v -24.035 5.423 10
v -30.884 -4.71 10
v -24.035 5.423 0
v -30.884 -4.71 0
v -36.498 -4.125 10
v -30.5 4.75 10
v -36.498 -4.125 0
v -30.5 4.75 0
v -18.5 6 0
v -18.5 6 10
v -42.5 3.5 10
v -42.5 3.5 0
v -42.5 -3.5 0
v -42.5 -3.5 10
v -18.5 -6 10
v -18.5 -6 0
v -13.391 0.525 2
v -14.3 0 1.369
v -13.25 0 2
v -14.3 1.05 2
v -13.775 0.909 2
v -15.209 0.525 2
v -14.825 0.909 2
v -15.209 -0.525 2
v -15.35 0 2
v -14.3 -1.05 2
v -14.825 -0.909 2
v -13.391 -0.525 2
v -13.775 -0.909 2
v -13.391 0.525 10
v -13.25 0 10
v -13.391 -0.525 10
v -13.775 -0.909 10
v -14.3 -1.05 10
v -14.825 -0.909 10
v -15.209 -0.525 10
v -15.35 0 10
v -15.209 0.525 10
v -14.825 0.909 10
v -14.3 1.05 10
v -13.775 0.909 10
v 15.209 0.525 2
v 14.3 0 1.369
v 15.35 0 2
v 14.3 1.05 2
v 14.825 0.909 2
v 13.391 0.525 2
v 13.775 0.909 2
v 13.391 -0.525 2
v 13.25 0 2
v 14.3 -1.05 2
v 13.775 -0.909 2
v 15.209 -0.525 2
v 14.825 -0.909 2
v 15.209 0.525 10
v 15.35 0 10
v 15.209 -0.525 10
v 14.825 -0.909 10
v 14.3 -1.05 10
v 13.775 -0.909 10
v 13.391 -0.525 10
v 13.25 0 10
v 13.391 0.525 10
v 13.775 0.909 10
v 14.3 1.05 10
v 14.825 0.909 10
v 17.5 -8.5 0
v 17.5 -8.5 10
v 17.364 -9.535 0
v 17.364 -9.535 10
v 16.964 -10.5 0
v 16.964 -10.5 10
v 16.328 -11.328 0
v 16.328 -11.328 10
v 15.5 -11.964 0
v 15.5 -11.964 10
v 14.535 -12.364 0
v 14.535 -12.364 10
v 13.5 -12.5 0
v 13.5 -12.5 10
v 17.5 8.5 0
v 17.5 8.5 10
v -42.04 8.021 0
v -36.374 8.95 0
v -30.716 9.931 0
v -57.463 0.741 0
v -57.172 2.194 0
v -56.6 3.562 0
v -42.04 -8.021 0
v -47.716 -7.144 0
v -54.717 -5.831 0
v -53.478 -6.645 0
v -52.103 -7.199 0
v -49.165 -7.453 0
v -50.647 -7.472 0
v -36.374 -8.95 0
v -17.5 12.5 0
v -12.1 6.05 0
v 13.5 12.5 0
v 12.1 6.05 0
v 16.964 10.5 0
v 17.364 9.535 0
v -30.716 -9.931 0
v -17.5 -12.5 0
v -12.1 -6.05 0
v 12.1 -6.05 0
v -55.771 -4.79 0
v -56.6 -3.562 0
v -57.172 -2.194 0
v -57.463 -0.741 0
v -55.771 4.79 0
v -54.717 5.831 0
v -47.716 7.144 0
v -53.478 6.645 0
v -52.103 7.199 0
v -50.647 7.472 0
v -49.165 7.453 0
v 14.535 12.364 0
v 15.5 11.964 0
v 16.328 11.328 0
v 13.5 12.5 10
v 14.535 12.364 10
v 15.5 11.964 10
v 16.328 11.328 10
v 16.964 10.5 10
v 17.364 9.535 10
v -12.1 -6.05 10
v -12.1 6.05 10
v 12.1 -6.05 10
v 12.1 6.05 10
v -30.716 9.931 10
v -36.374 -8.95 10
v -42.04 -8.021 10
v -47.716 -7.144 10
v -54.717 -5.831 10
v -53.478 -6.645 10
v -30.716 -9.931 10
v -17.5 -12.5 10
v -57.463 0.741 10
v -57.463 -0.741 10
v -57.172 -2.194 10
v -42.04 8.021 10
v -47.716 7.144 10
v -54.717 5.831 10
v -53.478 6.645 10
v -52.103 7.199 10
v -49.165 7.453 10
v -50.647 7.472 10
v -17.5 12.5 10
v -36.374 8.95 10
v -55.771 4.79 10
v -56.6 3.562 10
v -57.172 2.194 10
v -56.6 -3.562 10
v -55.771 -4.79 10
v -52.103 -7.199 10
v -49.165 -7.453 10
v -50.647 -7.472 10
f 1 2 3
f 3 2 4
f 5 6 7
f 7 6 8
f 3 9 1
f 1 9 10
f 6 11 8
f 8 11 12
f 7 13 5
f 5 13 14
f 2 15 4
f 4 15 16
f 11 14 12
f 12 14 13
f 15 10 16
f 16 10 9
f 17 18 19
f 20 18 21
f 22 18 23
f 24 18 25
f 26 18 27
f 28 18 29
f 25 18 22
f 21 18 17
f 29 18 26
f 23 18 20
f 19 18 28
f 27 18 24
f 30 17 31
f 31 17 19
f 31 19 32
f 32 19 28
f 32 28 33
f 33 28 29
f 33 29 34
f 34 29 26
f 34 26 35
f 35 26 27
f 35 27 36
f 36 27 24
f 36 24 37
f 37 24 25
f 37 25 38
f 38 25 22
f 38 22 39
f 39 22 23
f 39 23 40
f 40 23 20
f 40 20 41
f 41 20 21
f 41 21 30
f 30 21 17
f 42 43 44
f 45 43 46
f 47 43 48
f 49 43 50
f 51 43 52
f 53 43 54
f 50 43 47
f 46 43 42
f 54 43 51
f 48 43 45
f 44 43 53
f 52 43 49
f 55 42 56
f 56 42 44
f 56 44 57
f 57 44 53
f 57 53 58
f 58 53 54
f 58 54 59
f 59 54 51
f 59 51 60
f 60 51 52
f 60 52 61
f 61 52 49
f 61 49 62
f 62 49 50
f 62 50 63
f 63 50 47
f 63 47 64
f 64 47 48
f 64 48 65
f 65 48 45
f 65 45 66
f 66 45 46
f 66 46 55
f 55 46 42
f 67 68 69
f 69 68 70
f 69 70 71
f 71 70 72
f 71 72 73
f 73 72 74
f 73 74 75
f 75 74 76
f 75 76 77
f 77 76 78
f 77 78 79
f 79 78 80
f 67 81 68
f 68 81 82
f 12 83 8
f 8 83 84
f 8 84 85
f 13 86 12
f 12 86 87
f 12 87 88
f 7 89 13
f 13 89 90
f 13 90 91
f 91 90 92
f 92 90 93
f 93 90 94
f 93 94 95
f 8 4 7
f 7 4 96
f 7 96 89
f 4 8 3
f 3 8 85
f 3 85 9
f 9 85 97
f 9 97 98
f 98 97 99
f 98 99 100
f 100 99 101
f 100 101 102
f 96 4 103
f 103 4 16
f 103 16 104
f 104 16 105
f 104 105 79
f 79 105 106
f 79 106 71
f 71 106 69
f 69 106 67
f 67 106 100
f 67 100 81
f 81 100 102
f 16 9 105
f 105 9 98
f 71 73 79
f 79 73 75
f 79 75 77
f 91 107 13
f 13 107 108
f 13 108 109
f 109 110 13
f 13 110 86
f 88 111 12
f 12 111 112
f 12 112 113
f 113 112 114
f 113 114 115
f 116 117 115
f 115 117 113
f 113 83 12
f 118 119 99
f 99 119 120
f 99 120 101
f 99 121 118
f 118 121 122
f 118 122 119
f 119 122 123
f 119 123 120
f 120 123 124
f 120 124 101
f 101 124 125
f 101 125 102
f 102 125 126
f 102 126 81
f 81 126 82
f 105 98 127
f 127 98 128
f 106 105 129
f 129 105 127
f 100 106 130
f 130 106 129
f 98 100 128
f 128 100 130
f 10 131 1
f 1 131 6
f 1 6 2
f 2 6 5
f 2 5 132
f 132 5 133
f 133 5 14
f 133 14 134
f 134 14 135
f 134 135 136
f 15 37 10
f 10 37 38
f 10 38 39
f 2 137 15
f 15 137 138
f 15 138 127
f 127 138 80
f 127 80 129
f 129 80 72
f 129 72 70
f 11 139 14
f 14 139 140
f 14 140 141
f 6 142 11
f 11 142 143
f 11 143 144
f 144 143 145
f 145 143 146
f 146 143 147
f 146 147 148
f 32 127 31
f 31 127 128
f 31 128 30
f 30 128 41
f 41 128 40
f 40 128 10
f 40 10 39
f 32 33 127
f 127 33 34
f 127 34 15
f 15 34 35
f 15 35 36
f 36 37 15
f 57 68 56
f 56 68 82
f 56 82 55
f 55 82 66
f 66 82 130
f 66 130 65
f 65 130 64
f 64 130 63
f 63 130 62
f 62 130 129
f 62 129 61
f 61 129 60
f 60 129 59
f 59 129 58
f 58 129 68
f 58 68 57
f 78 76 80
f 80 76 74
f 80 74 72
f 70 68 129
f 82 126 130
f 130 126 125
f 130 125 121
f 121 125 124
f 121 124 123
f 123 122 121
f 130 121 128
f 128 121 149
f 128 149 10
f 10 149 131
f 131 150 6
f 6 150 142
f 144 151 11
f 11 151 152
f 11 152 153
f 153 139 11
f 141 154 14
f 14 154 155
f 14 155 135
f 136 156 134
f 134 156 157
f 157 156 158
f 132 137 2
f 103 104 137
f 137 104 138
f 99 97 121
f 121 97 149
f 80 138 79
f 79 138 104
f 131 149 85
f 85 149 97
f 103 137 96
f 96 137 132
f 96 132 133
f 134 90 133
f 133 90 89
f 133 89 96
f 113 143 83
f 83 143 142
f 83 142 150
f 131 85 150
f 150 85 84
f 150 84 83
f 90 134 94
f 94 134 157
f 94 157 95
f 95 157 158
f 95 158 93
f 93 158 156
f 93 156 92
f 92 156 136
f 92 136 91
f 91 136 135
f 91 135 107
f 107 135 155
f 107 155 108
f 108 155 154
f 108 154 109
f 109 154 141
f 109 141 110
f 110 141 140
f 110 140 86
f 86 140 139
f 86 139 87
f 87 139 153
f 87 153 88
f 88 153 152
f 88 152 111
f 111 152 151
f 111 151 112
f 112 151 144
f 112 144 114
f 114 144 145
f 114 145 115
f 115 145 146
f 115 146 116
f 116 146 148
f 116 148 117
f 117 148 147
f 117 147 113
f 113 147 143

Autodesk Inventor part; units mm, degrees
ref_plane "YZ Plane" through (0, 0, 0) normal (1, 0, 0) x (0, 1, 0)
ref_plane "XZ Plane" through (0, 0, 0) normal (0, 1, 0) x (-1, 0, 0)
ref_plane "XY Plane" through (0, 0, 0) normal (0, 0, 1) x (1, 0, 0)
sketch "Sketch1" plane through (0, 0, 0) normal (0, 0, 1) x (1, 0, 0)
  line L0 (-12.1, 6.05) -> (12.1, 6.05)
  line L1 (12.1, 6.05) -> (12.1, -6.05)
  line L2 (12.1, -6.05) -> (-12.1, -6.05)
  line L3 (-12.1, -6.05) -> (-12.1, 6.05)
  line L4 (-12.1, 6.05) -> (12.1, -6.05) construction
  line L5 (12.1, 6.05) -> (-12.1, -6.05) construction
  line L6 (-17.5, 12.5) -> (17.5, 12.5)
  line L7 (17.5, 12.5) -> (17.5, -12.5)
  line L8 (17.5, -12.5) -> (-17.5, -12.5)
  line L9 (-17.5, 12.5) -> (17.5, -12.5) construction
  line L10 (17.5, 12.5) -> (-17.5, -12.5) construction
  arc A0 (-43.9311, 7.3622) -> (-43.9311, -7.3622) centre (-42.5, 0) ccw
  line L11 (-17.5, 12.5) -> (-43.9311, 7.3622)
  line L12 (-17.5, -12.5) -> (-43.9311, -7.3622)
  point P0 (0, 0)
  point P1 (17.5, 0)
  dimension "d0" = 24.2
  dimension "d1" = 12.1
  dimension "d2" = 35
  dimension "d3" = 25
  dimension "d4" = 15
  dimension "d5" = 60
extrude "Extrusion1" add sketch "Sketch1" along normal blind 10
fillet "Fillet1" radius 4 2 edges at (17.5, 12.5, 5) (17.5, -12.5, 5)
sketch "Sketch2" plane through (0, 0, 10) normal (0, 0, 1) x (1, 0, 0)
  line L0 (12.1, 6.05) -> (12.1, -6.05) projected
  line L1 (-12.1, -6.05) -> (-12.1, 6.05) projected
  point P0 (0, 0)
  point P1 (14.3, 0)
  point P2 (-14.3, 0)
  dimension "d16" = 2.2
  dimension "d17" = 2.2
hole "Hole1" at (14.3, 0, 10) at (-14.3, 0, 10) direction (0, 0, -1) diameter 2.1 depth 8 tip angle 118
sketch "Sketch3" plane through (0, 0, 10) normal (0, 0, 1) x (1, 0, 0)
  line L0 (-18.5, 6) -> (-42.5, 3.5)
  line L1 (-18.5, -6) -> (-42.5, -3.5)
  line L2 (-42.5, -3.5) -> (-42.5, 3.5)
  line L3 (-42.5, 0) -> (-11.6221, -28.1421) construction
  line L4 (-30.5, 4.75) -> (-30.5, -4.75) construction
  arc A0 (-43.9311, 7.3622) -> (-43.9311, -7.3622) centre (-42.5, 0) ccw construction
  line L5 (-12.1, -6.05) -> (-12.1, 6.05) projected
  line L6 (-18.5, 6) -> (-18.5, -6)
  line L7 (-24.035, 5.4234) -> (-30.8838, -4.71)
  line L8 (-30.5, 4.75) -> (-36.4984, -4.1252)
  point P0 (0, 0)
  point P1 (-12.1, 0)
  point P2 (-12.1, 0)
  dimension "d27" = 7
  dimension "d31" = 24
  dimension "d32" = 6.5
  dimension "d33" = 12
  dimension "d34" = 50
  dimension "d35" = 50
extrude "Extrusion2" cut sketch "Sketch3" against normal blind 10
extrude "Extrusion3" add sketch "Sketch3" against normal blind 10 contours L7 L1 L8 L0
sketch "Sketch4" plane through (0, 0, 10) normal (0, 0, 1) x (1, 0, 0)
  arc A0 (-43.9311, 7.3622) -> (-43.9311, -7.3622) centre (-42.5, 0) ccw projected
  arc A1 (-47.7155, 7.1436) -> (-47.7155, -7.1436) centre (-50, 0) ccw
  line L0 (-17.5, 12.5) -> (-43.9311, 7.3622) projected
  arc A2 (-47.7155, 7.1436) -> (-30.7155, 9.9311) centre (-141.1455, 630.1772) ccw
  line L1 (-43.9311, -7.3622) -> (-17.5, -12.5) projected
  arc A3 (-30.7155, -9.9311) -> (-47.7155, -7.1436) centre (-141.1455, -630.1772) ccw
  line L2 (-18.5, 6) -> (-18.5, -6) projected
  point P0 (0, 0)
  point P1 (-18.5, 0)
  point P2 (-50, 0)
  dimension "d38" = 7.5
  dimension "d39" = 630
  dimension "d40" = 17
extrude "Extrusion4" add sketch "Sketch4" against normal blind 10
properties part number "pata_inferior_v3"
